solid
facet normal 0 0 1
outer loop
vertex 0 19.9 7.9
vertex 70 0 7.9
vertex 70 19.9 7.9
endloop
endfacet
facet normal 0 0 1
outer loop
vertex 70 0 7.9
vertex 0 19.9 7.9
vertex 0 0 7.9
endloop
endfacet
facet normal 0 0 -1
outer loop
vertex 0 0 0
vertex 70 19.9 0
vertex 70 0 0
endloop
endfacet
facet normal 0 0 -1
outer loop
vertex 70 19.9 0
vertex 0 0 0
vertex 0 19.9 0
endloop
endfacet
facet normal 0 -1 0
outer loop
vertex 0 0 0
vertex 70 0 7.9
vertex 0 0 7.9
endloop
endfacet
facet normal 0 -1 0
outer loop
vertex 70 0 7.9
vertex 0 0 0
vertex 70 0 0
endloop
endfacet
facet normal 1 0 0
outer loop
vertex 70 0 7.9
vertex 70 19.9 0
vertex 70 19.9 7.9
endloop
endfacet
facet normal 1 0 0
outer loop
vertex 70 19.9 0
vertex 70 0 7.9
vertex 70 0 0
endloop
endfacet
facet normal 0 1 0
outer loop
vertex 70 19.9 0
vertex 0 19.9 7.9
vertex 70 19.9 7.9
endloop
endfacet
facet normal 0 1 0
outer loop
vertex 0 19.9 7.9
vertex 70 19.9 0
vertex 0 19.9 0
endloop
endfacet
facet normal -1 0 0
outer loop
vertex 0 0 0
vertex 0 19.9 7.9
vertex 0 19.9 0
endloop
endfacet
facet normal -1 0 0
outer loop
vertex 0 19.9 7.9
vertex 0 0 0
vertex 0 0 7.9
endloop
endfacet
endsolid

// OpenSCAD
// Support Bars for Kobalt rounter in Maslow4


BarW = 8 - .1;
BarL = 20 - .1;
BarH = 70;
$fn = 36;



difference() {  // D1
	union() {

      // Support Bar
         cube([BarH, BarL, BarW]);
    } 
	// Cross section view
    //     rotate([0,0,-90])
    //         cube([100,100,100]);

} // D1
